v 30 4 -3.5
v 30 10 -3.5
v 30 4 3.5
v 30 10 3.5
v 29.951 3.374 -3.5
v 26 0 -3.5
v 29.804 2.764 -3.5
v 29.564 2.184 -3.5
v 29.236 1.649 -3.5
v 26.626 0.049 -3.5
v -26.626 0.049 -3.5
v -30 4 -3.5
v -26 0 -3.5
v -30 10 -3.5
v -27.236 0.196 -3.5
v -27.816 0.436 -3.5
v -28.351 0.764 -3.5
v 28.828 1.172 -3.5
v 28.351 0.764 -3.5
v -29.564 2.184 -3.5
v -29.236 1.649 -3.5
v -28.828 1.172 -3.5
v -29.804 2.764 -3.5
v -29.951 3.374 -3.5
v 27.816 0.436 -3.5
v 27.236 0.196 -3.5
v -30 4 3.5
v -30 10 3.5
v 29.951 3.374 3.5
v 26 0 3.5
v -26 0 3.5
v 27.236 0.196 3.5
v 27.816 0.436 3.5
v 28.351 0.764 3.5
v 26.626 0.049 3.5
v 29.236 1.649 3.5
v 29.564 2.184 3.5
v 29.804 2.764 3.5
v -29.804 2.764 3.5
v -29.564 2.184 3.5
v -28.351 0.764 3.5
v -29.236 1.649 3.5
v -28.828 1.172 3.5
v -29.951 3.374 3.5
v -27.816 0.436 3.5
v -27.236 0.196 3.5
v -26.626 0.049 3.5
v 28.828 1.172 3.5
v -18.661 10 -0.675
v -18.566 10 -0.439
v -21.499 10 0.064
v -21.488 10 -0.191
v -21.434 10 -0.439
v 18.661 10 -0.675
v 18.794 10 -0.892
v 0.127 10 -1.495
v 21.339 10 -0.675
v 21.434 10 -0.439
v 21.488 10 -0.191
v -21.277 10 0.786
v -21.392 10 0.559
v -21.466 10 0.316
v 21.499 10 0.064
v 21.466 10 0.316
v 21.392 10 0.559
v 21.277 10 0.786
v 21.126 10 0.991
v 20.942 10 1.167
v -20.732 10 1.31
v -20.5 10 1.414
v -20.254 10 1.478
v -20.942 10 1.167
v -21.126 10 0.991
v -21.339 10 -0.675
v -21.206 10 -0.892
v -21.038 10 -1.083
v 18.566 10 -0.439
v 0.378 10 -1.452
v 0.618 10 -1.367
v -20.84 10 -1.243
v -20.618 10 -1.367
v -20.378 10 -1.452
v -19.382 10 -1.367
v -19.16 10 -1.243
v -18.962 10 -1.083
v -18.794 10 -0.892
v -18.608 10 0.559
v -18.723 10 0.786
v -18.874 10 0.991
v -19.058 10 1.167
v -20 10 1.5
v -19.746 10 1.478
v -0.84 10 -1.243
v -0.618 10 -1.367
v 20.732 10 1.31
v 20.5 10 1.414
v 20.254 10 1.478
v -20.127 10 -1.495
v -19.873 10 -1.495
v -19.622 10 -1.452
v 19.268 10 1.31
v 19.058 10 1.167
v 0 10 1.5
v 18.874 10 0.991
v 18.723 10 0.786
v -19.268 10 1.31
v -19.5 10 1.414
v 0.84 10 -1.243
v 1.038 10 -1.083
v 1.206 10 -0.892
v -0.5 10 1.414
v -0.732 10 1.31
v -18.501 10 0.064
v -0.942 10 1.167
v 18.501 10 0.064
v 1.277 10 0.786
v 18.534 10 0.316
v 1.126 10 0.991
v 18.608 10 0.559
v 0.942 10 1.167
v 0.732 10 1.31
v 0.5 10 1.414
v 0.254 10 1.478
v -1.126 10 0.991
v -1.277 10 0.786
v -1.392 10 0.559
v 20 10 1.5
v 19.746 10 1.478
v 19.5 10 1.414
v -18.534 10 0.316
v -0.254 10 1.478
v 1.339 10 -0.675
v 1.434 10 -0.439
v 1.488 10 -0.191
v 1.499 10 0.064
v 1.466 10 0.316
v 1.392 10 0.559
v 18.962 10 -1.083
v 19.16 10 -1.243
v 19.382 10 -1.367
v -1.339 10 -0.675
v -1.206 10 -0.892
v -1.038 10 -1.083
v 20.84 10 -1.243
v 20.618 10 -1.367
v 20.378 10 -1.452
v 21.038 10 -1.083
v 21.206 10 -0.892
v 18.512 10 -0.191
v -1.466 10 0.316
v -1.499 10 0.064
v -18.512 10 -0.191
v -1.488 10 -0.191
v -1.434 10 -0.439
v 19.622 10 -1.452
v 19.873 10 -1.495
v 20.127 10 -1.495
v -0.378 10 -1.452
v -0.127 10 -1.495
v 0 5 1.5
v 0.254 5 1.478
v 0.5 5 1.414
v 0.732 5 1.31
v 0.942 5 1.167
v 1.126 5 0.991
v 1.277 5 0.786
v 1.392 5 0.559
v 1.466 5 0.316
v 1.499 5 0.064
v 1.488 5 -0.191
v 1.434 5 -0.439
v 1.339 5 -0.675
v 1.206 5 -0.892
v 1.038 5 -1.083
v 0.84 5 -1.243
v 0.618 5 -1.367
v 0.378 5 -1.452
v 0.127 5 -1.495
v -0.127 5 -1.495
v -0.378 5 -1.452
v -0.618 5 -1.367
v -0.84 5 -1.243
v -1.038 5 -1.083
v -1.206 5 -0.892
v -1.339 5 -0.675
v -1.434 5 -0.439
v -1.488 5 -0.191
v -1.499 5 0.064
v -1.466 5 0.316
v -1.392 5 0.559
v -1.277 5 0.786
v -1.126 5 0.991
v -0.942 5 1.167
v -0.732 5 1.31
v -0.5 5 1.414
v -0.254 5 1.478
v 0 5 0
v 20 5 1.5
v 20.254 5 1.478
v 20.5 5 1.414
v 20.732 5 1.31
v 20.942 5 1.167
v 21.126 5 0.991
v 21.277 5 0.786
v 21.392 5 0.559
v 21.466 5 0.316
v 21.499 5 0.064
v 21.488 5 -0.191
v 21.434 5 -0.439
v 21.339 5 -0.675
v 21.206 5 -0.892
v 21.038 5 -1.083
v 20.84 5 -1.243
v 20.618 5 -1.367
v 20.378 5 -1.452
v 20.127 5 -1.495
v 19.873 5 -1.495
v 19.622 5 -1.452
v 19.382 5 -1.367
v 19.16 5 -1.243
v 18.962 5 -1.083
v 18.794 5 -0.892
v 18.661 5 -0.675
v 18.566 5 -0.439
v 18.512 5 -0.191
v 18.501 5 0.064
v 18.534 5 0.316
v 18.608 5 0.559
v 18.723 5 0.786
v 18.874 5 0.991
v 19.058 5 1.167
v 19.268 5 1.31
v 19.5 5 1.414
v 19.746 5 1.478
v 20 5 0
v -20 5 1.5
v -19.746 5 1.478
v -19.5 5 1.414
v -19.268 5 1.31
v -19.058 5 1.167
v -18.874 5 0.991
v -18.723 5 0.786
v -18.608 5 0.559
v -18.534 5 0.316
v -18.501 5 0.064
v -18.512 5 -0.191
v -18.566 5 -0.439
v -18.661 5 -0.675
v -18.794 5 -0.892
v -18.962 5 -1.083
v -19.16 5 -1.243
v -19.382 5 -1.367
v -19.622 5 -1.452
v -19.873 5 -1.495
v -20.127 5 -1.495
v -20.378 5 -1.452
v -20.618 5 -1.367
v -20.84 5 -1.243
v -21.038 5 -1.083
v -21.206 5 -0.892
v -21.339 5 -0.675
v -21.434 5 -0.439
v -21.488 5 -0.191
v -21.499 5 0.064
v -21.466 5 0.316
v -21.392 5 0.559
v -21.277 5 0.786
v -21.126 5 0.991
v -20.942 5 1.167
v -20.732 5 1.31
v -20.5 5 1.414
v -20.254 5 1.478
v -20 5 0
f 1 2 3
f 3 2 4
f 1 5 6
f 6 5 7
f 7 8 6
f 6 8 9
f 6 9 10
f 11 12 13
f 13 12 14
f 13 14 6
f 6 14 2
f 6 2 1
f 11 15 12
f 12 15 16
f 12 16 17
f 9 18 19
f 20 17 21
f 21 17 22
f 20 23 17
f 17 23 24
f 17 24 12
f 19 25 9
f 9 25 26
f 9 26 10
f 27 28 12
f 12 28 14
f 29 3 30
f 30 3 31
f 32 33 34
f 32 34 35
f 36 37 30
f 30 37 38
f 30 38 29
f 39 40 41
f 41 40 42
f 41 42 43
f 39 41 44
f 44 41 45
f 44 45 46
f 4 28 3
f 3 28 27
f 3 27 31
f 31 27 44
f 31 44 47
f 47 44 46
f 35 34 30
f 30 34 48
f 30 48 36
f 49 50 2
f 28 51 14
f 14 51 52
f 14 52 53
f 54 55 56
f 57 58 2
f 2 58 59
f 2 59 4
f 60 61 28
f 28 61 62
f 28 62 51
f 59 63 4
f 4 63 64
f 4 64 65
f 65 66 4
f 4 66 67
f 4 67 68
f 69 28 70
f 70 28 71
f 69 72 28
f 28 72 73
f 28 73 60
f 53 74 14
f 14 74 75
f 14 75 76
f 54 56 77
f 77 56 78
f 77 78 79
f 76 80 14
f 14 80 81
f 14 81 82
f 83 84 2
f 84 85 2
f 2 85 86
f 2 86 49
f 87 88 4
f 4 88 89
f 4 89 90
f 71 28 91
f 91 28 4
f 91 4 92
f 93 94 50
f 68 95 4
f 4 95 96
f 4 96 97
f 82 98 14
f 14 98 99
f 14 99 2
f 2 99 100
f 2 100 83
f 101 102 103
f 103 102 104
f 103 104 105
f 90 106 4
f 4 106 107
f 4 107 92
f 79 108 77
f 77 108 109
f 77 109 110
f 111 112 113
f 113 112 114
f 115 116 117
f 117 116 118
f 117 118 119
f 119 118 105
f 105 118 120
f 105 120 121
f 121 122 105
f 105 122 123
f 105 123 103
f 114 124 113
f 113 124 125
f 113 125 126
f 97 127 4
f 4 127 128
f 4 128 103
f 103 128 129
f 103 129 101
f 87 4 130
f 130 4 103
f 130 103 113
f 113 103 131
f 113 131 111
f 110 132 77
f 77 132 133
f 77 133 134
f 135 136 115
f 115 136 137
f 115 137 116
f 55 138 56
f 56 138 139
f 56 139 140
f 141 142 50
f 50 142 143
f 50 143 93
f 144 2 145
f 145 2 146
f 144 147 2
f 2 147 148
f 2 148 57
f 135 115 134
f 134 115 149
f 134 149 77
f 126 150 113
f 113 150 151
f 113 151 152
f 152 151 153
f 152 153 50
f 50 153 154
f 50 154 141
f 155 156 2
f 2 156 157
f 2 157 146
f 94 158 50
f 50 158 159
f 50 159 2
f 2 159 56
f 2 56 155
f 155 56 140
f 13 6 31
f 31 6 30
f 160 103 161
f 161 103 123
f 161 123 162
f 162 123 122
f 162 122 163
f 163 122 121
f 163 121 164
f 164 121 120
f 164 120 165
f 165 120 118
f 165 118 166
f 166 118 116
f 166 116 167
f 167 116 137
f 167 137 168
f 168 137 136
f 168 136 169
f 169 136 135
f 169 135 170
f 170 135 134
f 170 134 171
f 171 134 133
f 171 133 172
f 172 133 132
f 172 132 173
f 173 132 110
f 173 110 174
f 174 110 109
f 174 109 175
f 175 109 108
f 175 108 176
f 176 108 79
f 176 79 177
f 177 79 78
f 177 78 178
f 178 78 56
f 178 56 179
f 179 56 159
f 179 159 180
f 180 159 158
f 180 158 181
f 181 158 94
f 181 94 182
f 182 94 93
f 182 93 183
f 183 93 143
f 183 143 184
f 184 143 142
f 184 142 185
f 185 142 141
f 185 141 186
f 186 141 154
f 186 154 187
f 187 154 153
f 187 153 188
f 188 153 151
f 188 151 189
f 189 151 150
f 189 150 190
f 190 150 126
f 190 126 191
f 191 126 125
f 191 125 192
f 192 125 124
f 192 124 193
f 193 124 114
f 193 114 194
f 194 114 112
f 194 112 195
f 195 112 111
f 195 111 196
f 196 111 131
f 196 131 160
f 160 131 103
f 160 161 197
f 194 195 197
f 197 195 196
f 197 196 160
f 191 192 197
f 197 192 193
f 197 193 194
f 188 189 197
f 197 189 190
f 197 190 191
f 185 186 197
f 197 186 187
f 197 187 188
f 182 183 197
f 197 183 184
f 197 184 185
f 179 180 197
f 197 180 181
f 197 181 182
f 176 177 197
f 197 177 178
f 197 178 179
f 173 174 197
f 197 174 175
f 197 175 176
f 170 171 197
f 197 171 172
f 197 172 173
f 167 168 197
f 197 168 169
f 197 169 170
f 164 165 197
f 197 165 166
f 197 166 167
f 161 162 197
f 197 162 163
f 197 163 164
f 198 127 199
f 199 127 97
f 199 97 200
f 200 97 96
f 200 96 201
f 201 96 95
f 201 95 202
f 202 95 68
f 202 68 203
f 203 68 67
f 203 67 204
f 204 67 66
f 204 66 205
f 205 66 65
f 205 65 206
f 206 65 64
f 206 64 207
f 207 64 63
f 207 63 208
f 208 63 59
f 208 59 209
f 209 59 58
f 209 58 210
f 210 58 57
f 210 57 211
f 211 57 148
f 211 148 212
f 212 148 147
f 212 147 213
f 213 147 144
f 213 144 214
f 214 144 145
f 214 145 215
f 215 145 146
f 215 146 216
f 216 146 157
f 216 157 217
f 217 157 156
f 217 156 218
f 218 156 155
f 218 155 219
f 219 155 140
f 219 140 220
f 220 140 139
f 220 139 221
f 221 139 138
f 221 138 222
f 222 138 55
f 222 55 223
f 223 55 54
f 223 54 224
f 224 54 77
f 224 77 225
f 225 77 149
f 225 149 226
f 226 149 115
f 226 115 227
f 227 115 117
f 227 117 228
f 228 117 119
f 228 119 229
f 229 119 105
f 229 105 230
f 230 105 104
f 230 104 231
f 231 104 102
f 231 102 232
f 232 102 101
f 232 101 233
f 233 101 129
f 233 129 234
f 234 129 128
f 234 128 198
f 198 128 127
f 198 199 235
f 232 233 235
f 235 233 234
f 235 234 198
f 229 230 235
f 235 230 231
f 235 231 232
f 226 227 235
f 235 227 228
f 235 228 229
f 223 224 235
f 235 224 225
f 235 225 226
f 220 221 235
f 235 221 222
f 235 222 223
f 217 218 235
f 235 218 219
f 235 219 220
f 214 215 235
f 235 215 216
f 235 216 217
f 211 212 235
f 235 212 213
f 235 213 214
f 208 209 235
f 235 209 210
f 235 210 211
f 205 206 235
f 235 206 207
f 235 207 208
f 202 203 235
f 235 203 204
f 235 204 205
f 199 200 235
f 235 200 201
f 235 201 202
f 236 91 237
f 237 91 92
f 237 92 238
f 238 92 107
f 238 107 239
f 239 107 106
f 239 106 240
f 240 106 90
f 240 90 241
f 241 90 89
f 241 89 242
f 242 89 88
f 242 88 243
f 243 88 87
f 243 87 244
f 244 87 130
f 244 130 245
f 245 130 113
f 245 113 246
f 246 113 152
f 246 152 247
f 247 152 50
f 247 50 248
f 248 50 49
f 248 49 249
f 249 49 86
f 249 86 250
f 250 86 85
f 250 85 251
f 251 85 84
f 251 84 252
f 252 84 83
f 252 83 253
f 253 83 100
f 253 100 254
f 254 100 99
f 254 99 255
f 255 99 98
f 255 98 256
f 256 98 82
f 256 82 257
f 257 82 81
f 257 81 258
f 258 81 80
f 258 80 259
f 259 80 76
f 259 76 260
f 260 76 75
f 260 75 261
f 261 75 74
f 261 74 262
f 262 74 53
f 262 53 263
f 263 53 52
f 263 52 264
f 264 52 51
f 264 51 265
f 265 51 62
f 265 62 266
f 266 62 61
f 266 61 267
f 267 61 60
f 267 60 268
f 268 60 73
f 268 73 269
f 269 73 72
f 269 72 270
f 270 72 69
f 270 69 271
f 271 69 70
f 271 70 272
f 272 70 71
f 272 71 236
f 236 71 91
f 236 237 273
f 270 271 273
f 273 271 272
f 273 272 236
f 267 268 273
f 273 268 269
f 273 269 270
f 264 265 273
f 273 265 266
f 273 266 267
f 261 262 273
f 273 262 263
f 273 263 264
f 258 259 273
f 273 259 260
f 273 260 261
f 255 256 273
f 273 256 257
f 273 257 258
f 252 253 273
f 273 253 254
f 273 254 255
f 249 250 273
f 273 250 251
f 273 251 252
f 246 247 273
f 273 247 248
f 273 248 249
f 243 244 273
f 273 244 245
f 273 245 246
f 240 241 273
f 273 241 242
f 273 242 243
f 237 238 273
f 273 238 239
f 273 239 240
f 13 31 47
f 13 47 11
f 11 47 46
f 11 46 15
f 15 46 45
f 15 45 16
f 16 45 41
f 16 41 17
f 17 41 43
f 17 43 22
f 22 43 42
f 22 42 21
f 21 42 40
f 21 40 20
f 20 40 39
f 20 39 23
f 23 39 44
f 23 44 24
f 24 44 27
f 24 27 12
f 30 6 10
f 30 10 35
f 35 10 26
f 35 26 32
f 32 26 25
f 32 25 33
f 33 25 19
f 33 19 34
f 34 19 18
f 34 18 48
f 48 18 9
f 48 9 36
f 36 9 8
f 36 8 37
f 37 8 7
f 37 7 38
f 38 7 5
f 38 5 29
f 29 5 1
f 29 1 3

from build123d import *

# Parameters (mm, degrees)
SKETCH1_W           = 60
SKETCH1_H           = 7
BOSS_EXTRUDE1_DEPTH = 10
SKETCH2_R           = 1.5
CUT_EXTRUDE1_DEPTH  = 5
FILLET1_R           = 4


with BuildPart() as part:
    # Sketch1 → Boss-Extrude1 (new body)
    with BuildSketch(Plane(origin=(0, 0, 0), x_dir=(1, 0, 0), z_dir=(0, 1, 0))):
        Rectangle(SKETCH1_W, SKETCH1_H)
    extrude(amount=BOSS_EXTRUDE1_DEPTH)

    # Sketch2 → Cut-Extrude1 (cut)
    with BuildSketch(Plane(origin=(0, 10, 0), x_dir=(1, 0, 0), z_dir=(0, 1, 0))):
        with Locations(Location((0, 0, 0), (0, 0, 270))):
            Circle(SKETCH2_R)
        with Locations(Location((20, 0, 0), (0, 0, 270))):
            Circle(SKETCH2_R)
        with Locations(Location((-20, 0, 0), (0, 0, 270))):
            Circle(SKETCH2_R)
    extrude(amount=-CUT_EXTRUDE1_DEPTH, mode=Mode.SUBTRACT)

    # Fillet1
    fillet1_edges = [part.edges().sort_by_distance(p)[0] for p in [
        (-30, 0, 0),
        (30, 0, 0),
    ]]
    fillet(fillet1_edges, radius=FILLET1_R)


solid = part.part
